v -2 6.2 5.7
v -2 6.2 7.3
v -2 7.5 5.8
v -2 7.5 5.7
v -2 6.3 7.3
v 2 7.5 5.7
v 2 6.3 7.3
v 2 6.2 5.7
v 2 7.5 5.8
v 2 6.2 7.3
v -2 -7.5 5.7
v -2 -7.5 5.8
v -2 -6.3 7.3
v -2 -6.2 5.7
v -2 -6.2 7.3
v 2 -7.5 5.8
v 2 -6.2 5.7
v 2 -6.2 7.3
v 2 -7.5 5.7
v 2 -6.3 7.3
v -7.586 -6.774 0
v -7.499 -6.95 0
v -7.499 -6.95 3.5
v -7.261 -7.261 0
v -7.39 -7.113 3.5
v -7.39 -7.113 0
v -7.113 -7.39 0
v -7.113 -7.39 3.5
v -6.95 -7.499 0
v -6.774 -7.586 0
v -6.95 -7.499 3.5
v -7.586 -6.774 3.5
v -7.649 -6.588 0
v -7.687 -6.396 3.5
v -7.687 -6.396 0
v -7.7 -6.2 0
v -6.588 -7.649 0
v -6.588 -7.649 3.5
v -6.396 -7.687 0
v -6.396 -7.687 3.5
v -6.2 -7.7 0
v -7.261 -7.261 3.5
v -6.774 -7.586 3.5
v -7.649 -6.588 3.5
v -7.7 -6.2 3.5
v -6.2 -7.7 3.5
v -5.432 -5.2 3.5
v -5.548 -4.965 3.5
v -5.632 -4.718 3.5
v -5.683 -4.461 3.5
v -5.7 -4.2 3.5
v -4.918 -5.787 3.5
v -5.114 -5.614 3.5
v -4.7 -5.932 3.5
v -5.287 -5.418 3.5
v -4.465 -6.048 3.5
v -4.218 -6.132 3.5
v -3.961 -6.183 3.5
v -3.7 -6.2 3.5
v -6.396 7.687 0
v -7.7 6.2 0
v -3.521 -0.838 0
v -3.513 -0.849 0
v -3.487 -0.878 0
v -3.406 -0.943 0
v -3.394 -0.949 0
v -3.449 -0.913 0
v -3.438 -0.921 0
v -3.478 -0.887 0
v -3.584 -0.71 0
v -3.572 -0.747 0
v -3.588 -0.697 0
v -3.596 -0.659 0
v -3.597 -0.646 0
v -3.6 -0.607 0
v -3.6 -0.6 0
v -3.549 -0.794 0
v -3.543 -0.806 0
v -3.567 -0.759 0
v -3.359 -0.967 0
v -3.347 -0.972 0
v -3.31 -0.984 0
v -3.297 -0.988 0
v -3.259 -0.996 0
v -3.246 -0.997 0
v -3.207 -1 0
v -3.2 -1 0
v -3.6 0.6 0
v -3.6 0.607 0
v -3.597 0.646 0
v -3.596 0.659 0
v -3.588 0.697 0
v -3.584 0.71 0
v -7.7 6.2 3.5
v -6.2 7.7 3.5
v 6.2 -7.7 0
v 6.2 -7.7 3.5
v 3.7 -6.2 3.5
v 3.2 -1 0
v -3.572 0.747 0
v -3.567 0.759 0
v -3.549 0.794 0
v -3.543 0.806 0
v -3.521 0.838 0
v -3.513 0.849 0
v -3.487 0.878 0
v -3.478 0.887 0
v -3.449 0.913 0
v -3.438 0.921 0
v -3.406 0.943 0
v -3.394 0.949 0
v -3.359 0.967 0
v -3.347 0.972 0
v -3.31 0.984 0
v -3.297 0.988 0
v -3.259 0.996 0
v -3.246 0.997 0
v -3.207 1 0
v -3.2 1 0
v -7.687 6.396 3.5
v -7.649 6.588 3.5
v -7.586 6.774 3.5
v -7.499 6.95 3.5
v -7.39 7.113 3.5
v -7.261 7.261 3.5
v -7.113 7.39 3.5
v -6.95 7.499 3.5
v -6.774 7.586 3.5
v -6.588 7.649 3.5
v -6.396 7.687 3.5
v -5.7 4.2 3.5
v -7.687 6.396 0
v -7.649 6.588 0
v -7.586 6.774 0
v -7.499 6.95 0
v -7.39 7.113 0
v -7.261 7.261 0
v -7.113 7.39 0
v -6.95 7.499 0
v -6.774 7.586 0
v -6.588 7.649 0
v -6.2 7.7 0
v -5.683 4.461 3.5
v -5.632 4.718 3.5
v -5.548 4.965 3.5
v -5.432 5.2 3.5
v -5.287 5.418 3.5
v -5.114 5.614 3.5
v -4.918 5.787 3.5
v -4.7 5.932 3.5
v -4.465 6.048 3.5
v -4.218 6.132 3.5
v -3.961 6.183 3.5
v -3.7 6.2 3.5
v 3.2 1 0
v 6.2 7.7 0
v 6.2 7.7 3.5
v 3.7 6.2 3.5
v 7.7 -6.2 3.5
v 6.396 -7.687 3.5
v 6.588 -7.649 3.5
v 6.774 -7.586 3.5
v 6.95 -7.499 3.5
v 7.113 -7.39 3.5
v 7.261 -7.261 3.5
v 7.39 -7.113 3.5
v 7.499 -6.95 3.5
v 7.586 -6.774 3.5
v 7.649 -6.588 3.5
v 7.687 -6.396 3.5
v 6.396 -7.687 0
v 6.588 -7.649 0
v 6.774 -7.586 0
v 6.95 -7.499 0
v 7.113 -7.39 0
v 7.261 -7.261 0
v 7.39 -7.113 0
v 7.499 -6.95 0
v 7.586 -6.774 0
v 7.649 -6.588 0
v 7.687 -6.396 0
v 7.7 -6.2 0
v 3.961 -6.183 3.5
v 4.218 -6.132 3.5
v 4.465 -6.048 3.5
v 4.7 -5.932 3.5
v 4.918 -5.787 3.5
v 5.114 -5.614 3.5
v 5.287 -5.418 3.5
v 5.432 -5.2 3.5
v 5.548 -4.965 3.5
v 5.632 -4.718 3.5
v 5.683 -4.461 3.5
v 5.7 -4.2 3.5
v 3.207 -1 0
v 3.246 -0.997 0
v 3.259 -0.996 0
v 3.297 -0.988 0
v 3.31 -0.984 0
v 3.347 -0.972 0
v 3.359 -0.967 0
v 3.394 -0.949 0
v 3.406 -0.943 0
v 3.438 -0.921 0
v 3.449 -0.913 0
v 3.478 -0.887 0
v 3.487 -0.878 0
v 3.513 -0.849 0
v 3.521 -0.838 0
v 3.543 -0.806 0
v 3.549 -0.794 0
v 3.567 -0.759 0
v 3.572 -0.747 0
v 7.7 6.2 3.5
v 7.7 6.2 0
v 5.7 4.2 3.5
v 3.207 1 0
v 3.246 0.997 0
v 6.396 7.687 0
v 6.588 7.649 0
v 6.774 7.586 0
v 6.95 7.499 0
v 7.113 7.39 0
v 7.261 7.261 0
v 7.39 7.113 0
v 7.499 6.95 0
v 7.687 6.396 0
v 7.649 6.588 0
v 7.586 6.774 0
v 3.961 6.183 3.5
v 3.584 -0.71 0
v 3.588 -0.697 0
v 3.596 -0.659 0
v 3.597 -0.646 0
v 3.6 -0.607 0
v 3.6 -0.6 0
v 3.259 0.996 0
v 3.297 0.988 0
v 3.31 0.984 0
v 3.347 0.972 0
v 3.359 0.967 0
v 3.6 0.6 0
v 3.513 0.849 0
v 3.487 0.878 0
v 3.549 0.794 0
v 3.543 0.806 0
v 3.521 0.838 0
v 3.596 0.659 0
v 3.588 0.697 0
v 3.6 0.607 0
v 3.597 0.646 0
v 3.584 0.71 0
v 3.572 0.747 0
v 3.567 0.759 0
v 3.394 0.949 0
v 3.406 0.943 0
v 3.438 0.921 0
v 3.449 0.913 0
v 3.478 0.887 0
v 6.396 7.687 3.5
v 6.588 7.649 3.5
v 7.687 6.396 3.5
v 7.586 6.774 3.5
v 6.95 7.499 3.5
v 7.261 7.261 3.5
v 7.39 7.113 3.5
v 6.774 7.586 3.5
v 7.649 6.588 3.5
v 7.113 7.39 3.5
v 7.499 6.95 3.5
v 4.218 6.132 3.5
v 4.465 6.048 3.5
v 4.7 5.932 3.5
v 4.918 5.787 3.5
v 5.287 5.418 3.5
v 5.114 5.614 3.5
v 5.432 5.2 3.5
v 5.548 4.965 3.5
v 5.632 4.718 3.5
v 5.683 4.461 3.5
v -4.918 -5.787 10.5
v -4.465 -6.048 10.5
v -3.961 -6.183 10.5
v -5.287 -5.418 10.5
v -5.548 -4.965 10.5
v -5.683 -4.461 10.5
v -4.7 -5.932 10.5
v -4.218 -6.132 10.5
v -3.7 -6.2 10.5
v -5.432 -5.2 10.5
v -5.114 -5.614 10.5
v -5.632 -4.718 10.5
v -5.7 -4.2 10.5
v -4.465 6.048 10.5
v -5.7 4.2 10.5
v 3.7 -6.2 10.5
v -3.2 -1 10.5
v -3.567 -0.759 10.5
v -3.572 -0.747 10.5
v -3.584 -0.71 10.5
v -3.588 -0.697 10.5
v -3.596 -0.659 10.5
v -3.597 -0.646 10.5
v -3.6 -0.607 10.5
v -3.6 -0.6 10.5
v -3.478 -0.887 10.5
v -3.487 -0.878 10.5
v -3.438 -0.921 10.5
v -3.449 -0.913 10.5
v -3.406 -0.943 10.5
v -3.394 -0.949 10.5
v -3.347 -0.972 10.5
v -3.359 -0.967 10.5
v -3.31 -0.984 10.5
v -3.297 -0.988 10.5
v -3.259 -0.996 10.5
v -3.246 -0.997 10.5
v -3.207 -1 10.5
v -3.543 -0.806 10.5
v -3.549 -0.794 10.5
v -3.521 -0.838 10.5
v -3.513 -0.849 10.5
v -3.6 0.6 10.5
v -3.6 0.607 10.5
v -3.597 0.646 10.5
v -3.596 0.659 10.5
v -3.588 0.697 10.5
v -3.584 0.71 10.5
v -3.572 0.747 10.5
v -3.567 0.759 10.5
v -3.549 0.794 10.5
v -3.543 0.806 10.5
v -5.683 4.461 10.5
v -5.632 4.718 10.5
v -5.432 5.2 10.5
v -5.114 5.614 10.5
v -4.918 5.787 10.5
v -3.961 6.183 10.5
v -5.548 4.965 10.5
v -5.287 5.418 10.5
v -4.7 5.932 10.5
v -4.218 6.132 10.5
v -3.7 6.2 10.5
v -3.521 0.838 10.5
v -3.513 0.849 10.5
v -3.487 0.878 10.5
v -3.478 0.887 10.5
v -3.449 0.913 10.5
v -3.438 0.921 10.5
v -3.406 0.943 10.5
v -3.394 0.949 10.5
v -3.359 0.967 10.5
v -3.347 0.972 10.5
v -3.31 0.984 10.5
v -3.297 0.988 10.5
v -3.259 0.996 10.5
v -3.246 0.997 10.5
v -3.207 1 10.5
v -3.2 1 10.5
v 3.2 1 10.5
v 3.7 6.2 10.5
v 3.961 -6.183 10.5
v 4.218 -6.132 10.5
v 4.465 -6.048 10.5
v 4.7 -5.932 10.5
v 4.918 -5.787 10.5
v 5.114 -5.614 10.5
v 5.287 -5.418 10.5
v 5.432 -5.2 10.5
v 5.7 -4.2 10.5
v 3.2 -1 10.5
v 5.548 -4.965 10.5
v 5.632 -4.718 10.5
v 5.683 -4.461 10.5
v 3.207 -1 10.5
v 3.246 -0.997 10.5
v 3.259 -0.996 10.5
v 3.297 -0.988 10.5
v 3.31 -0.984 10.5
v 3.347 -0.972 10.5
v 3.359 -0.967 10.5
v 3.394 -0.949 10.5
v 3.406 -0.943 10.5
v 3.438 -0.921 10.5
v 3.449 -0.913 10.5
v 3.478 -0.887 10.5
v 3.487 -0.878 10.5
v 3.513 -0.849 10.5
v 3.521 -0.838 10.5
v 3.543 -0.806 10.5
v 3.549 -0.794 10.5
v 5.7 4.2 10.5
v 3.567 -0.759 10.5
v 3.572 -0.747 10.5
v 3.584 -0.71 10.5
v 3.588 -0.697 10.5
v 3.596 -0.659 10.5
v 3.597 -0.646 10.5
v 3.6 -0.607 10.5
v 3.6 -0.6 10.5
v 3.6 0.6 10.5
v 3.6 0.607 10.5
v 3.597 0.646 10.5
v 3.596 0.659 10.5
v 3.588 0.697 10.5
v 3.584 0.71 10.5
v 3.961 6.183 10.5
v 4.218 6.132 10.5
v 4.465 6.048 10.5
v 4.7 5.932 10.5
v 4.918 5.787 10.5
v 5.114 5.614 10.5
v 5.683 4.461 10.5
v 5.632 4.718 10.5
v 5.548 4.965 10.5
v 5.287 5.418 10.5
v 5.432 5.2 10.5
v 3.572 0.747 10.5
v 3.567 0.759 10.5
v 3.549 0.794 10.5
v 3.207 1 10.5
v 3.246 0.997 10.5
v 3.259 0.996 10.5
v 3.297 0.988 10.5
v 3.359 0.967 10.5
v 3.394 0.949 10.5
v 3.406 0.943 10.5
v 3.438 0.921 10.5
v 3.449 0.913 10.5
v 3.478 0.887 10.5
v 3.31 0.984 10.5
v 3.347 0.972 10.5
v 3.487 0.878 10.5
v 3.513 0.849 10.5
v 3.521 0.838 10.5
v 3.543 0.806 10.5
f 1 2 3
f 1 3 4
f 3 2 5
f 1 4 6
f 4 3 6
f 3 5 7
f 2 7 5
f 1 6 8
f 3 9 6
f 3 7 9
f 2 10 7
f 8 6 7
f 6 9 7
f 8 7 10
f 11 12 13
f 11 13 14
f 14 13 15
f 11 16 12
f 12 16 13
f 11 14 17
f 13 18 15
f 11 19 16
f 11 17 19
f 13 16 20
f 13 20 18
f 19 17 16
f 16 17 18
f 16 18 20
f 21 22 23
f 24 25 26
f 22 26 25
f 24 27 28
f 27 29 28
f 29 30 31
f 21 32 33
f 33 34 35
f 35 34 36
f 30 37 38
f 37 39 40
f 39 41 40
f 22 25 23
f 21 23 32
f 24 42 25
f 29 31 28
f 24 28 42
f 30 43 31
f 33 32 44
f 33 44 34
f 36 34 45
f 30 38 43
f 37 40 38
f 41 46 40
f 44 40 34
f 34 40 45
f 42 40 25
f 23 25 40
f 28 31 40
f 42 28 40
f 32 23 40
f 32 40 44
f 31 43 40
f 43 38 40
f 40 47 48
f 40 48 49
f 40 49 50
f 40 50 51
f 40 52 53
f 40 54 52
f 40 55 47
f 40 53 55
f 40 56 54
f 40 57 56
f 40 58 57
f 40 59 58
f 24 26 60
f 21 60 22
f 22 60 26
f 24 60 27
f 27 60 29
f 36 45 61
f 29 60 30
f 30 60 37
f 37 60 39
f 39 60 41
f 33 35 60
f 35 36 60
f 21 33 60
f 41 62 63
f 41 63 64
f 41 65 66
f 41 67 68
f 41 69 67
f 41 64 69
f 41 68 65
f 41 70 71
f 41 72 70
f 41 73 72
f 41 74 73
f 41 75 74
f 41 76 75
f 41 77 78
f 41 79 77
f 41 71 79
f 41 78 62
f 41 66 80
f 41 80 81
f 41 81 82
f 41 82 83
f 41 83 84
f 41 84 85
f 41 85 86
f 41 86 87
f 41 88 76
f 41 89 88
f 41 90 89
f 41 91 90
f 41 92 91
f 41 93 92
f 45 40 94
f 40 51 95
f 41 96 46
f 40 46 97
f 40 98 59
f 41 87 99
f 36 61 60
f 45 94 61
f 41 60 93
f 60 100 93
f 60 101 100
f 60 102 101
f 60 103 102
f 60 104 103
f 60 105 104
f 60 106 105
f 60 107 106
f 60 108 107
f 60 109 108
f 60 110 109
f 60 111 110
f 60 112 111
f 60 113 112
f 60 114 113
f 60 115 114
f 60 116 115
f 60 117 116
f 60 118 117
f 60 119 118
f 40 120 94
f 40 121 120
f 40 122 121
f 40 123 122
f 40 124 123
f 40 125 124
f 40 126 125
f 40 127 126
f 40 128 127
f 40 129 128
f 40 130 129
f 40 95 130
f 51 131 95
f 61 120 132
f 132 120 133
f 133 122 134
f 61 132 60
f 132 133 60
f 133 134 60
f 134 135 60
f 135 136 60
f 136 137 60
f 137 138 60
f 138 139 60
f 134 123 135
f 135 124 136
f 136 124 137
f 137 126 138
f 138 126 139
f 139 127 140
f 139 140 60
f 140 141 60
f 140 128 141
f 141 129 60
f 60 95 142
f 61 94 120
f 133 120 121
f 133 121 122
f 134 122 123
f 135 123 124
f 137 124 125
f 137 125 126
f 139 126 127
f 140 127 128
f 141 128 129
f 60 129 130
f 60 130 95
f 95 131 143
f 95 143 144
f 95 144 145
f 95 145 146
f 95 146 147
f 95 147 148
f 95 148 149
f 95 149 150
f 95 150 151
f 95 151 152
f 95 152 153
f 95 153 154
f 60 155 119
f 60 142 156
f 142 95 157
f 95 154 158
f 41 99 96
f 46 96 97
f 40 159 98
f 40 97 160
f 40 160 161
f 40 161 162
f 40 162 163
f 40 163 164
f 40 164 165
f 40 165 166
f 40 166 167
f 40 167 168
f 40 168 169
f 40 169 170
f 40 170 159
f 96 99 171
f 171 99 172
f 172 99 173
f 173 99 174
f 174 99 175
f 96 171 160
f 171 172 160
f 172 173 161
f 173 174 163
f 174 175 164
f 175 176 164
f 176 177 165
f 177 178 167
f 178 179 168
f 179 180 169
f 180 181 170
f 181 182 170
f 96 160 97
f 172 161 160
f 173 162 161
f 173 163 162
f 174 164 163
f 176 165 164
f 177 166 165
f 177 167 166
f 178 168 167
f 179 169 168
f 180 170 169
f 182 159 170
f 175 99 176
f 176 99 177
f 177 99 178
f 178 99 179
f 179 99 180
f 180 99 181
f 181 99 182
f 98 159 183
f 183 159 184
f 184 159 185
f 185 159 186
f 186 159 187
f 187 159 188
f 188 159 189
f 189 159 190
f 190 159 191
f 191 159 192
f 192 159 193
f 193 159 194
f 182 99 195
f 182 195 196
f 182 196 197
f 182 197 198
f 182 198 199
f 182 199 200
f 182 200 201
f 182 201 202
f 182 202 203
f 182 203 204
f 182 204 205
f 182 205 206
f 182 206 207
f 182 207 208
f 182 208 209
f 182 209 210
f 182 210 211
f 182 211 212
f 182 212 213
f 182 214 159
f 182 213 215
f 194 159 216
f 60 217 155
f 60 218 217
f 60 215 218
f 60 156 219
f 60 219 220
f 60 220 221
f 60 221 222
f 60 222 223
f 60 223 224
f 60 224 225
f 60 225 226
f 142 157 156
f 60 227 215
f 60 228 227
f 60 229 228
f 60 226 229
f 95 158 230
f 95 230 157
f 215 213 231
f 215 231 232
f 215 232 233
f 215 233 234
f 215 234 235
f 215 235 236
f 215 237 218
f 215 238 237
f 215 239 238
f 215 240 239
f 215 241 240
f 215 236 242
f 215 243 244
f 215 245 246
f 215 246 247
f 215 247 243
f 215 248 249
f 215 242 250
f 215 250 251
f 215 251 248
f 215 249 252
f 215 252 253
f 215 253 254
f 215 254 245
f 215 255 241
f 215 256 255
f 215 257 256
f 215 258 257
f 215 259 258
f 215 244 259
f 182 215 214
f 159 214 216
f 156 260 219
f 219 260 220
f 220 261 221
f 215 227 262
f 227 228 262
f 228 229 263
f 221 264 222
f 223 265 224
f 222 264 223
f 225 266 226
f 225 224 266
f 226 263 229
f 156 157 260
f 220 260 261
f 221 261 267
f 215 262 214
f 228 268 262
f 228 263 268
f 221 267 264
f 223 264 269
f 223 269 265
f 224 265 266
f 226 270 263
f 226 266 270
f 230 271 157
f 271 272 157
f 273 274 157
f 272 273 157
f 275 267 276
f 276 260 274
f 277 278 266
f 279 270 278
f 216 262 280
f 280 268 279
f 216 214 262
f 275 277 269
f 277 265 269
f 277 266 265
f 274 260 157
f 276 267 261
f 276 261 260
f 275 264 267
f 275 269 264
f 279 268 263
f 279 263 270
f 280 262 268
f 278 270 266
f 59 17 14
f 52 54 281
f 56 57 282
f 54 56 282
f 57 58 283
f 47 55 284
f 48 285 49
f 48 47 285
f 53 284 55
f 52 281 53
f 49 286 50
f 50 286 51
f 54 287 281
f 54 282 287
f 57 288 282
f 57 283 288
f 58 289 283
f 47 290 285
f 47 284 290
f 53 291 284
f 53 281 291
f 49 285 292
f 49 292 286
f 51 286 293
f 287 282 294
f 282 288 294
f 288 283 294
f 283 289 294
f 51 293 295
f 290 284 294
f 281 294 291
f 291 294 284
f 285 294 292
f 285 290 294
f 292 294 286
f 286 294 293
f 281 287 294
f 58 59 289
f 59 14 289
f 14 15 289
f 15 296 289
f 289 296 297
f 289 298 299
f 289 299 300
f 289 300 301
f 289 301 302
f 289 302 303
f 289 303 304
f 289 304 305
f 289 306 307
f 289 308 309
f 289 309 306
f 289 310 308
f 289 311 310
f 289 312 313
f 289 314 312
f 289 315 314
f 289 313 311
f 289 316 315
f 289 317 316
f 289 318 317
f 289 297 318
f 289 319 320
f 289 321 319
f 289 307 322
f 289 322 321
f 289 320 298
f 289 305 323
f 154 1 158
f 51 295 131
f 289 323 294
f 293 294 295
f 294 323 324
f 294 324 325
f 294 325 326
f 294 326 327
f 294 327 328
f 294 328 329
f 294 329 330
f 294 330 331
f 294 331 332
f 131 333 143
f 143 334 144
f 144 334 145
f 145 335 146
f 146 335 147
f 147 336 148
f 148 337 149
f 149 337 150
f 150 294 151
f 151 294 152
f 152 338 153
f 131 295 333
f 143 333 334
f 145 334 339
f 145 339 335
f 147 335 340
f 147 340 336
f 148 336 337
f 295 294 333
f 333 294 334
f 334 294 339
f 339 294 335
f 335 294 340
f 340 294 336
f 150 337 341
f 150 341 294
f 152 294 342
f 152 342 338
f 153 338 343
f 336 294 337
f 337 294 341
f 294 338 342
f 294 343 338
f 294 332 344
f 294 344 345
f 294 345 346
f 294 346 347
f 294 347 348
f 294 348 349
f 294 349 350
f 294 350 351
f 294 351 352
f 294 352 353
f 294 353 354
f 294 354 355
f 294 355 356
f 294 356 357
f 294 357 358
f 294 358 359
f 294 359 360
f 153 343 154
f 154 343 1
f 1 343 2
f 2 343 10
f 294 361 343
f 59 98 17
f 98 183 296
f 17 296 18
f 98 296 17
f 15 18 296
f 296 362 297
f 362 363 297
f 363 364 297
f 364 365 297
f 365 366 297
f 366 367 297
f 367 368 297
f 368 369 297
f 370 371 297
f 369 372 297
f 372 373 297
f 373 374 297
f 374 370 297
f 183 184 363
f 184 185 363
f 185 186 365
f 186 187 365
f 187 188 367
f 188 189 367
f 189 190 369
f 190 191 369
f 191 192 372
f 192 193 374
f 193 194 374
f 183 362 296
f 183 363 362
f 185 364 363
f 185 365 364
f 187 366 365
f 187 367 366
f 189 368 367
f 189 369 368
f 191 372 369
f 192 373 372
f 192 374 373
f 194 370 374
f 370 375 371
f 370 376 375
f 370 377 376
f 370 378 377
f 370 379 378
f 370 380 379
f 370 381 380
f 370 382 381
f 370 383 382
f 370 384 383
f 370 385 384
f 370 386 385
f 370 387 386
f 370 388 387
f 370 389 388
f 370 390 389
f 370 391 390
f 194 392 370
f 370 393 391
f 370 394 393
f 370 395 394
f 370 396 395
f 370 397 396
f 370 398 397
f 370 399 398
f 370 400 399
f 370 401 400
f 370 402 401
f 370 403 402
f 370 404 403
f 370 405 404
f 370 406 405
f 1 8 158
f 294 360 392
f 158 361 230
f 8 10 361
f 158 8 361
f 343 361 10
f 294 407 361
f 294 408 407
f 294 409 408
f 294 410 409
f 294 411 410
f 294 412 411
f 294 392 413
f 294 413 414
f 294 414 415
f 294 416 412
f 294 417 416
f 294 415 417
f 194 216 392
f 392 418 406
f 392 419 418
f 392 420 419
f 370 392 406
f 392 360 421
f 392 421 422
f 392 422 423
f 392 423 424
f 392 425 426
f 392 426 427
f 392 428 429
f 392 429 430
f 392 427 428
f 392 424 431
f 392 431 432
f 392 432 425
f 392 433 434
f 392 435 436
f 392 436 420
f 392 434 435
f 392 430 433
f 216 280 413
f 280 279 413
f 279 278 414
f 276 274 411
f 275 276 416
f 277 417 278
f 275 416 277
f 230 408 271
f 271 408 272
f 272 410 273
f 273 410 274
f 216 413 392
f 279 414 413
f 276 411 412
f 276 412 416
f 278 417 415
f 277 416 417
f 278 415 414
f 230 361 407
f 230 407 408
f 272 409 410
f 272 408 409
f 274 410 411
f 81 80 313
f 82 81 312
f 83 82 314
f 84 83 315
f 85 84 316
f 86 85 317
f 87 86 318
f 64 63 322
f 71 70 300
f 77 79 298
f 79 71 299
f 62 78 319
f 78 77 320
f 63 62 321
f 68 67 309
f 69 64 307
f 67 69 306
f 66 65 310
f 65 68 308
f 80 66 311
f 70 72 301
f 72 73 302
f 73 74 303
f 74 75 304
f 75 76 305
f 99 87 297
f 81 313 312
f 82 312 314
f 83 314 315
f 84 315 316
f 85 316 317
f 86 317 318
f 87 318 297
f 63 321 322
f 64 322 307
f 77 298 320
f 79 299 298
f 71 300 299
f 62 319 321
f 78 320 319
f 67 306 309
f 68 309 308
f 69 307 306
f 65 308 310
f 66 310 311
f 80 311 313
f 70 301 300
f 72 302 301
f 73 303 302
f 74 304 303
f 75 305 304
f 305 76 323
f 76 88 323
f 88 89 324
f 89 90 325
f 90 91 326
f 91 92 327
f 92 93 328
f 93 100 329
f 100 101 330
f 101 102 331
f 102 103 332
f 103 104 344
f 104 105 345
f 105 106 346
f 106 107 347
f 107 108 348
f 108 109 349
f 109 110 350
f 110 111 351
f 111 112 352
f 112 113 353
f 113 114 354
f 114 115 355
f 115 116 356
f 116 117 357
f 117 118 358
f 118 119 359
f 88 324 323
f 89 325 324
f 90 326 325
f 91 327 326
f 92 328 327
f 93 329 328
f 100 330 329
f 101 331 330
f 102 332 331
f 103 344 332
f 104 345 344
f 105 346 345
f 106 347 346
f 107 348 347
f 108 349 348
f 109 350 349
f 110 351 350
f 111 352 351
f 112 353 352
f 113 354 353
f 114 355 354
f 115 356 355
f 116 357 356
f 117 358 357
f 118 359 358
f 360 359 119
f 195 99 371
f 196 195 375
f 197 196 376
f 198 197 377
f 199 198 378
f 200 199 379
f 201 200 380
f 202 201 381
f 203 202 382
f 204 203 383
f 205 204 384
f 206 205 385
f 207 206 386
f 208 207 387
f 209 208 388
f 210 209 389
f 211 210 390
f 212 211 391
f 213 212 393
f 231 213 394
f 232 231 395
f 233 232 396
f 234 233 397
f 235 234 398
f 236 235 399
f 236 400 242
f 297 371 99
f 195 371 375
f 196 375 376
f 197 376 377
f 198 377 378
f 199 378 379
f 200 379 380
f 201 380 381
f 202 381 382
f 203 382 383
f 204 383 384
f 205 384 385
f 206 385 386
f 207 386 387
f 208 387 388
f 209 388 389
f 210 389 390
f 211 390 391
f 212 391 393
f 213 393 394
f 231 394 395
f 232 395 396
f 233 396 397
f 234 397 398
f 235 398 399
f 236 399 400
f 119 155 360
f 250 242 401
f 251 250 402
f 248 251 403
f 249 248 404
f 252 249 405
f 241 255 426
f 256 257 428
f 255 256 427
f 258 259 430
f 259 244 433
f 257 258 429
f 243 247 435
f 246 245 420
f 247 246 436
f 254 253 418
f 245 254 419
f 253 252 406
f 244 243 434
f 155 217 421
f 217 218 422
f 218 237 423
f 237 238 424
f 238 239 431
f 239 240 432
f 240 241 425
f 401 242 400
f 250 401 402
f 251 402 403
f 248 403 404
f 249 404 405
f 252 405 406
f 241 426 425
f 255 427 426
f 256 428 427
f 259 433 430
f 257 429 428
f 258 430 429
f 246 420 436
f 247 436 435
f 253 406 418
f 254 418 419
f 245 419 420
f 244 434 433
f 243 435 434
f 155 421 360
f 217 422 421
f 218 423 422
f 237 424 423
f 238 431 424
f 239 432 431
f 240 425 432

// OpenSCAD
// file: parameters.scad
// ============================================
// MODULAR CABLE ORGANIZER - SHARED PARAMETERS
// ============================================
// All dimensions in mm - include this in all files
// ============================================

$fn = 48;

// === TOLERANCES ===
clearance = 0.3;
port_clearance = 0.1;  // Extra clearance for port openings (reduced - 0.2 was too loose for USB-C)
wall = 1.6;

// === SLOT DIMENSIONS (2:1 aspect ratio) - scaled to 2/3 ===
slot_width = 32;  // Standard wide slot for larger connectors
slot_width_narrow = 16;  // Narrow slot for compact connectors (USB-C, micro-USB, USB-A, Lightning, 3.5mm)
slot_height = 16;  // Height is same for both wide and narrow
slot_depth = 4;  // Reduced from 6mm - less frame depth needed

// === FRAME STRUCTURE ===
frame_wall = 2.0;   // Wall between slots - 6 layers @ 0.4mm nozzle for strength
frame_border = 6;  // Increased by 10mm for mounting holes with countersink
frame_back = 2;     // Slightly thicker for snap catch strength
mount_hole_dia = 3;
countersink_dia = 6;  // Diameter of countersink for screw heads
countersink_depth = 2;  // Depth of countersink

// === DEFAULT GRID (can be overridden in individual files) ===
grid_cols = 2;
grid_rows = 2;

// === INSERT BASE DIMENSIONS ===
insert_width = slot_width - (2 * clearance);
insert_height = slot_height - (2 * clearance);
insert_base_depth = slot_depth - 0.5;

// === NARROW INSERT BASE DIMENSIONS ===
insert_width_narrow = slot_width_narrow - (2 * clearance);
insert_height_narrow = slot_height - (2 * clearance);

// === INSERT BODY (protrudes from frame) ===
insert_body_width = insert_width - 4;
insert_body_height = insert_height - 3;
insert_body_depth = 12;  // Deep enough to accommodate male cable connectors
insert_top_thick = 1.5;  // Top platform thickness

// === NARROW INSERT BODY (protrudes from frame) ===
insert_body_width_narrow = insert_width_narrow - 4;
insert_body_height_narrow = insert_height_narrow - 3;

// === SNAP TABS (on neck/body - catch on back plate) ===
snap_tab_width = 4;
snap_tab_protrude = 1.2;  // How far tab sticks out from body
snap_tab_thick = 1.5;     // Z thickness of tab
snap_tab_offset = 2.2;      // Distance from base to tab bottom on insert (increased to clear frame)

// === CONNECTOR PORT DIMENSIONS & BODY DEPTHS ===
// Port dimensions from reference blueprints
// Body depths sized to match typical male connector lengths

// USB-C: 8.4 x 2.6mm, male connector ~9mm
usbc_w = 8.4;
usbc_h = 2.6;
usbc_r = 1.0;
usbc_body_depth = 9;

// USB-A: 12.0 x 4.5mm (tighter fit based on test print)
usba_w = 12.0;
usba_h = 4.5;
usba_r = 0.5;
usba_body_depth = 13;

// USB Mini: 6.9 x 3.0mm, male connector ~9mm
usb_mini_w = 6.9;
usb_mini_h = 3.0;
usb_mini_r = 0.5;
usb_mini_body_depth = 9;

// USB Micro-B: 7.0 x 1.8mm (tighter fit based on test print)
usb_micro_w = 7.0;
usb_micro_h = 1.8;
usb_micro_r = 0.3;
usb_micro_body_depth = 7;

// USB-B: 8.4 x 7.6mm (printer/keyboard style connector)
usb_b_w = 8.4;
usb_b_h = 7.6;
usb_b_r = 0.8;
usb_b_body_depth = 14;

// Lightning: 7.6 x 1.5mm, male connector ~8mm (measured from actual connector)
lightning_w = 7.6;
lightning_h = 1.5;
lightning_r = 0.5;
lightning_body_depth = 8;

// HDMI: 13.9 x 4.45mm (adjusted taper for better fit)
hdmi_w = 13.9;
hdmi_h = 4.45;
hdmi_r = 0.5;
hdmi_body_depth = 16;

// 3.5mm Audio Jack: male plug ~14mm (3.5mm = ~3.5mm, but use 3.6mm for snug fit)
audio_jack_dia = 3.6;
audio_jack_body_depth = 14;

// Blank/Label: recessed area for label
label_w = 30;
label_h = 12;
label_depth = 0.8;

// === CALCULATED VALUES ===
frame_total_depth = frame_back + slot_depth;
grid_width = (grid_cols * slot_width) + ((grid_cols - 1) * frame_wall);
grid_height = (grid_rows * slot_height) + ((grid_rows - 1) * frame_wall);
frame_width = grid_width + (2 * frame_border);
frame_height_total = grid_height + (2 * frame_border);
insert_total_depth = insert_base_depth + insert_body_depth;
// main file
// ============================================
// PRINT FILE: USB Micro Insert (NARROW)
// ============================================
// Narrow width version for space-efficient frames
// Print with base down (no supports needed)
// ============================================

include <insert_base.scad>

// Render narrow USB Micro insert
insert_usb_micro_narrow();
